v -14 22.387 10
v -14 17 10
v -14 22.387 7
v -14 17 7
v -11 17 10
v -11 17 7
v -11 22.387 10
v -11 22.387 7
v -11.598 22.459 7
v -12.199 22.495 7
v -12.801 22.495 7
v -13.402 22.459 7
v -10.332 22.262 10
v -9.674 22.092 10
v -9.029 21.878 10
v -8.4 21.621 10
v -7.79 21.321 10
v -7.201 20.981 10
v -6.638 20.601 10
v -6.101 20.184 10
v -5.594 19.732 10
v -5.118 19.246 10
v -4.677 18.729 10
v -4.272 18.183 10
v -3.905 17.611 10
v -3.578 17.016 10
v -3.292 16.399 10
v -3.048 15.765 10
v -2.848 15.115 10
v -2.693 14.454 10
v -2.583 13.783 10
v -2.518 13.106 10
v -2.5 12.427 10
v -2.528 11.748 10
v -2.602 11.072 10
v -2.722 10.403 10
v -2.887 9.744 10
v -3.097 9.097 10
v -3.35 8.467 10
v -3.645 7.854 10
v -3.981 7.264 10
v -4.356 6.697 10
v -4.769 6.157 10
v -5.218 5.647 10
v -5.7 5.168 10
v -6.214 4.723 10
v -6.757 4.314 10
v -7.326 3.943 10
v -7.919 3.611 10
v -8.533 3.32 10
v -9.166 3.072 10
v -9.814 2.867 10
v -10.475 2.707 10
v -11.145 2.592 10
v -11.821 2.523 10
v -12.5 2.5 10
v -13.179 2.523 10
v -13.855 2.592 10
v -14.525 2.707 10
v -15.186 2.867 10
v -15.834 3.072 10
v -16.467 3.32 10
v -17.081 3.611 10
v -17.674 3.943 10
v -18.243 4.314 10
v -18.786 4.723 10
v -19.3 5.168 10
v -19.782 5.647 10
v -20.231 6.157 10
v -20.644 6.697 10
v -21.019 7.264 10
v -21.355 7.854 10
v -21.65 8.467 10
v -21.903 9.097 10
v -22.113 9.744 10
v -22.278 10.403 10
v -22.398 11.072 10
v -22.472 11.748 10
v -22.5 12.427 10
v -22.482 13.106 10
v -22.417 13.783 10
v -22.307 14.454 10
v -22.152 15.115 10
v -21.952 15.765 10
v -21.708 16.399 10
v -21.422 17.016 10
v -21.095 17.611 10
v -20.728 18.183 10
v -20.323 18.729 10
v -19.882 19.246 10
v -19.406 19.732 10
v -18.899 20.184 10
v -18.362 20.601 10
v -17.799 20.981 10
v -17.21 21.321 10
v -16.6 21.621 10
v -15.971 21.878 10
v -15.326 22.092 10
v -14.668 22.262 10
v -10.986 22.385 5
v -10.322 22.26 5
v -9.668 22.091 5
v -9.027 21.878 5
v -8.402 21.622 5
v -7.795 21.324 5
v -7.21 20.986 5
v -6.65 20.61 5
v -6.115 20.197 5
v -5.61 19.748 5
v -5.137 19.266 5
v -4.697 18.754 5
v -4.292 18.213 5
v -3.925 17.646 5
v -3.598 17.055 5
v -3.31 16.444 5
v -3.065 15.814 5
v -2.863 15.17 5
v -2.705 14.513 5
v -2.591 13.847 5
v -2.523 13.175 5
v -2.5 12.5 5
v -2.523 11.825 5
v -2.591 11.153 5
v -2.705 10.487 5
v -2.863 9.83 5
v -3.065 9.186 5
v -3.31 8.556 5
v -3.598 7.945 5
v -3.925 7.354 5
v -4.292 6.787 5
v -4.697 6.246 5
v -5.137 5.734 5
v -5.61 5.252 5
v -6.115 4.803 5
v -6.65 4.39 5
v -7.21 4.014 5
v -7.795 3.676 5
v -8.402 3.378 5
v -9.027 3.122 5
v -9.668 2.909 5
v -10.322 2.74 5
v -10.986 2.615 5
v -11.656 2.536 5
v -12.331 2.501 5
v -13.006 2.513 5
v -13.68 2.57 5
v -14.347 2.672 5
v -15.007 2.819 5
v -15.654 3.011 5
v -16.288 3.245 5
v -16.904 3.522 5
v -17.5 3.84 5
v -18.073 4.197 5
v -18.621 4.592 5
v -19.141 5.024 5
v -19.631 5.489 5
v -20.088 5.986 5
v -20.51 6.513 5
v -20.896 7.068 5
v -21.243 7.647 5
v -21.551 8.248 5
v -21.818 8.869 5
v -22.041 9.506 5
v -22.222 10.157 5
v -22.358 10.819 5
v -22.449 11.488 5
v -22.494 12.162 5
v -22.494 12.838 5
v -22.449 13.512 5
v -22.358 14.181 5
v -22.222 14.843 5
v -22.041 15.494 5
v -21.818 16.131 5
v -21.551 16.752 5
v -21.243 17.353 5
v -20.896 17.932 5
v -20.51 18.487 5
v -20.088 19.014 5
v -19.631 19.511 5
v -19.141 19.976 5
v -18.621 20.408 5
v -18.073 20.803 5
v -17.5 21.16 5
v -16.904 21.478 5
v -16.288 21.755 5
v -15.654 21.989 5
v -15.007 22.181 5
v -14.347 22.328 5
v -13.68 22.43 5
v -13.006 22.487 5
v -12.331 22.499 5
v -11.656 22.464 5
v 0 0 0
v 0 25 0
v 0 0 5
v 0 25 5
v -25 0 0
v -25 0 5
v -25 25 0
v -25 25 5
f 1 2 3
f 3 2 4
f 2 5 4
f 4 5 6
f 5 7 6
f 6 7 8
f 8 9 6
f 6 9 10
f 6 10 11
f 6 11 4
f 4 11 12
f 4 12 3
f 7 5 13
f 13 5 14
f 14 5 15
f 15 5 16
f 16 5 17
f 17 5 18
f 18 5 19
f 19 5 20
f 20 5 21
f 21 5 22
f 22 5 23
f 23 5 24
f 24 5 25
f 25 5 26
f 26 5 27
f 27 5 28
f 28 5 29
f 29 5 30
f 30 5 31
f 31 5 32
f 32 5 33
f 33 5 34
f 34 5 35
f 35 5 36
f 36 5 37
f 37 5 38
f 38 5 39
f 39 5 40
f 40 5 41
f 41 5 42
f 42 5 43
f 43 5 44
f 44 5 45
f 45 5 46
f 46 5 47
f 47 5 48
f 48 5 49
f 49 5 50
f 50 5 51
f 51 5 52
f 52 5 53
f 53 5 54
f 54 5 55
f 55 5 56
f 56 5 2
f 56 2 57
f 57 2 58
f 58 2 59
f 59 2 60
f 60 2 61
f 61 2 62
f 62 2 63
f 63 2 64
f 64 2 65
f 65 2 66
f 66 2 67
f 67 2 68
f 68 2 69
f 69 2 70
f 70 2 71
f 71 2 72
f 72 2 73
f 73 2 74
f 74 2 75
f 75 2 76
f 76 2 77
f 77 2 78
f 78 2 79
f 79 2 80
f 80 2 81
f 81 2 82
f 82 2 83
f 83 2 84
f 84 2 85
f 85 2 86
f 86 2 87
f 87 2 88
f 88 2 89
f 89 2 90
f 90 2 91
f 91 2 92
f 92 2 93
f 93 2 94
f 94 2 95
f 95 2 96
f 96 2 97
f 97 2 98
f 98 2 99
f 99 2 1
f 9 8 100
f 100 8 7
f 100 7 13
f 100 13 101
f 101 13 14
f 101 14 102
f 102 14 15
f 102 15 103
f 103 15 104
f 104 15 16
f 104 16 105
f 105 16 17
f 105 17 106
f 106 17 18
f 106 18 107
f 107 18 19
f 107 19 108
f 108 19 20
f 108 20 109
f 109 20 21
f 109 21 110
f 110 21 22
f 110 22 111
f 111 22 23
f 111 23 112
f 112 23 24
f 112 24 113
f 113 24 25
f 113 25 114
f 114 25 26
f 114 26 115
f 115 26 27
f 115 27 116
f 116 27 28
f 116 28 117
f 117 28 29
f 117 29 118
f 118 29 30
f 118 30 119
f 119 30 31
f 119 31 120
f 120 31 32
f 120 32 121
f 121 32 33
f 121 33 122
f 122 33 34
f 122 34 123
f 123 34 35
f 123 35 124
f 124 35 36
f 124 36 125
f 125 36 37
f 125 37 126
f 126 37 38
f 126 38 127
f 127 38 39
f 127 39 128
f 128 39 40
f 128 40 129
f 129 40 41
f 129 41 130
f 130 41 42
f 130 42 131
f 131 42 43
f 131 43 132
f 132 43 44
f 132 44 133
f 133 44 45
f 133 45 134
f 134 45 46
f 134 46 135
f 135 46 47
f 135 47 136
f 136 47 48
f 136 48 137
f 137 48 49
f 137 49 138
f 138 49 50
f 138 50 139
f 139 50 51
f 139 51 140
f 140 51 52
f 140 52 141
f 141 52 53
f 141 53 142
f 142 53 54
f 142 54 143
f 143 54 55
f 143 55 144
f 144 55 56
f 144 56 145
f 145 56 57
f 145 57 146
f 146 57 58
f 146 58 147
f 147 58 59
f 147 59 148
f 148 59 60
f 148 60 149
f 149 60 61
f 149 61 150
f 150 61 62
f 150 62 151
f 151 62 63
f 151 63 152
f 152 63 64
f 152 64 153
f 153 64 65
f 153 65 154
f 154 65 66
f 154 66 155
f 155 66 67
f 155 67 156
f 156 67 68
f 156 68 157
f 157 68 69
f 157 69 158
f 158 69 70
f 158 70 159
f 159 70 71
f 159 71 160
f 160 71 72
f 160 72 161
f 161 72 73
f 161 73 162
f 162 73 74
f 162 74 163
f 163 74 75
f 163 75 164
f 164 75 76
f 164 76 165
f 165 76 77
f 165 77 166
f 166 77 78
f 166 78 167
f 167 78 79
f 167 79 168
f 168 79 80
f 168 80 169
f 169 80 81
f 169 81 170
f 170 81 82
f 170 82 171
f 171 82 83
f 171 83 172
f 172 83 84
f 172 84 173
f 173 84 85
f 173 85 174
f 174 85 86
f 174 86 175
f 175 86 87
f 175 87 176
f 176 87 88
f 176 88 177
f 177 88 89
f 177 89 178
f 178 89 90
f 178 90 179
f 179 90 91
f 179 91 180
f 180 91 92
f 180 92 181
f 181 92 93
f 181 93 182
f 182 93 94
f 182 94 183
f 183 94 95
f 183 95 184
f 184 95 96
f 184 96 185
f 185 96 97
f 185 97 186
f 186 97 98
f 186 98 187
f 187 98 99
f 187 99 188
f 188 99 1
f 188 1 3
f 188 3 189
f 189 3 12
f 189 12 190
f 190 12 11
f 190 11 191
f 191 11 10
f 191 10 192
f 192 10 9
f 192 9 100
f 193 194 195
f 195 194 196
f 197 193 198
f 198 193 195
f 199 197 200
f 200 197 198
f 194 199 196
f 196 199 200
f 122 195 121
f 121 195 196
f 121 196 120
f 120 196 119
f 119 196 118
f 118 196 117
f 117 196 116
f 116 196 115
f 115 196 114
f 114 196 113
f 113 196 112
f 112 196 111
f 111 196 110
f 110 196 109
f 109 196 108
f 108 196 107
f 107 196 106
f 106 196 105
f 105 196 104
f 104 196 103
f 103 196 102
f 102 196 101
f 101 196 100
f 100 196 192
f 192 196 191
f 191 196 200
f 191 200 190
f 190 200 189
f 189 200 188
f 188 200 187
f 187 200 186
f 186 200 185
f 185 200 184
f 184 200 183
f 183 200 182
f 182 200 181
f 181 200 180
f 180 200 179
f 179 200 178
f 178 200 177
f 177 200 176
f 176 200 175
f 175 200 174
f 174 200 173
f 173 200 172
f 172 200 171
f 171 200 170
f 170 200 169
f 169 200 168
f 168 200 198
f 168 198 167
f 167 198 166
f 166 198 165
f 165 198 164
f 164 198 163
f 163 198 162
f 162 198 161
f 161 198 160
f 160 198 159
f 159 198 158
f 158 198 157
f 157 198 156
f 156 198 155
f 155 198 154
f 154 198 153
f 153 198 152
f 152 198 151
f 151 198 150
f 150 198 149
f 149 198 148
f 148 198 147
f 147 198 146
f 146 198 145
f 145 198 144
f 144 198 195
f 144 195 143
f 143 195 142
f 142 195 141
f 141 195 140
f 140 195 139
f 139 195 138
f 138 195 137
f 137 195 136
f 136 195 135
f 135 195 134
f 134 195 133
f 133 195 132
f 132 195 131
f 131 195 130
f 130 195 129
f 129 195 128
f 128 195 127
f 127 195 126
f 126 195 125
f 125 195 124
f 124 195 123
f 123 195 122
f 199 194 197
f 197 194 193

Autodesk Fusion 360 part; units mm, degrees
sketch "Sketch1" plane through (0, 0, 0) normal (0, 0, 1) x (1, 0, 0)
  line L0 (0, 0) -> (-25, 0)
  line L1 (-25, 0) -> (-25, 25)
  line L2 (-25, 25) -> (0, 25)
  line L3 (0, 25) -> (0, 0)
  dimension "d1" = 25
  dimension "d2" = 25
extrude "Extrude1" add sketch "Sketch1" along normal blind 5
sketch "Sketch2" plane through (0, 0, 5) normal (0, 0, 1) x (-1, 0, 0)
  line L0 (0, -25) -> (25, -25)
  line L1 (25, -25) -> (25, 0)
  line L2 (25, 0) -> (0, 0)
  line L3 (0, 0) -> (0, -25)
  line L4 (12.5, -25) -> (12.5, 0)
  line L5 (12.5, -12.5) -> (0, -12.5)
  circle A0 centre (12.5, -12.5) radius 10
  dimension "d5" = 20
extrude "Extrude2" add sketch "Sketch2" along normal blind 5 contours L4 L5 A0 | L4 A0 | L4 L5 A0
sketch "Sketch3" plane through (0, 0, 10) normal (0, 0, 1) x (-1, 0, 0)
  circle A0 centre (12.5, -12.5) radius 10
  line L0 (11, -17) -> (14, -17)
  line L1 (14, -17) -> (14, -23)
  line L2 (14, -23) -> (11, -23)
  line L3 (11, -23) -> (11, -17)
extrude "Extrude3" cut sketch "Sketch3" against normal blind 3 contours A0 L0 L1 L3 picked at (12.6672, -18.8291)
